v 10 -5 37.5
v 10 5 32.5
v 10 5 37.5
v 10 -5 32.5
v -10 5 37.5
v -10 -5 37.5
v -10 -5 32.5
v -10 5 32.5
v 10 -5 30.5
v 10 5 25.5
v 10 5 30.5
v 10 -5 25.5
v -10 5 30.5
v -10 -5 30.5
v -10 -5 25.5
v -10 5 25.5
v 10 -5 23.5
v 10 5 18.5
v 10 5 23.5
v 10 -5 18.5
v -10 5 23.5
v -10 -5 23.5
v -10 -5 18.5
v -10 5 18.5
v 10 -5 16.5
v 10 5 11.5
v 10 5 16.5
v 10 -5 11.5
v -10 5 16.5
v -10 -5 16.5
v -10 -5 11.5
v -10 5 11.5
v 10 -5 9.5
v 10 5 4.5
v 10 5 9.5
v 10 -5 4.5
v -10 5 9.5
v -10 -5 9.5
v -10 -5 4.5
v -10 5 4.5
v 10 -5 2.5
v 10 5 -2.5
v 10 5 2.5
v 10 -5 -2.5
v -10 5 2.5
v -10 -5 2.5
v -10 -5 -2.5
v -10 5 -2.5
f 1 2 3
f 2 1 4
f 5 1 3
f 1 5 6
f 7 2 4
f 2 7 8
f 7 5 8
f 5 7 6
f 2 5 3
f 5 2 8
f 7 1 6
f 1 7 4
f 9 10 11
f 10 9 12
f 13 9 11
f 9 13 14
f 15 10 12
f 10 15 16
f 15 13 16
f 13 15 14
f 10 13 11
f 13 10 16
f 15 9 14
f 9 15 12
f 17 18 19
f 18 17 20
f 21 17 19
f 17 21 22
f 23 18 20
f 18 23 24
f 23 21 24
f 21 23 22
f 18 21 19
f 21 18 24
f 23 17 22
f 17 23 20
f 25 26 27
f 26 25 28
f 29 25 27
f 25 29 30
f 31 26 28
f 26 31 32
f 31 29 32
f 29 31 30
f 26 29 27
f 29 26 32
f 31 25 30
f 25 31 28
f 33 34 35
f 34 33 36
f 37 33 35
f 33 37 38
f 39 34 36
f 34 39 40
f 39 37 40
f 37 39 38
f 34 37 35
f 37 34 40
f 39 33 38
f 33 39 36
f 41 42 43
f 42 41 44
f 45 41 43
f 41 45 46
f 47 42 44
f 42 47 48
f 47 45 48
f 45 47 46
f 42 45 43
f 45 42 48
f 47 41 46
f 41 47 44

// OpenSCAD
// Define dimensions for the rectangular block
block_width = 20;  // Width of the block
block_depth = 10;  // Depth of the block
block_height = 5;  // Height of the block

// Define spacing between blocks in the vertical stack
spacing = 2;  // Space between blocks

// Function to create a rectangular block
module rectangular_block() {
    cube([block_width, block_depth, block_height], center = true);
}

// Generate the vertical stack of rectangular blocks
translate([0, 0, (block_height + spacing) * 5]) rectangular_block(); // Layer 1
translate([0, 0, (block_height + spacing) * 4]) rectangular_block(); // Layer 2
translate([0, 0, (block_height + spacing) * 3]) rectangular_block(); // Layer 3
translate([0, 0, (block_height + spacing) * 2]) rectangular_block(); // Layer 4
translate([0, 0, (block_height + spacing) * 1]) rectangular_block(); // Layer 5
translate([0, 0, (block_height + spacing) * 0]) rectangular_block(); // Layer 6
